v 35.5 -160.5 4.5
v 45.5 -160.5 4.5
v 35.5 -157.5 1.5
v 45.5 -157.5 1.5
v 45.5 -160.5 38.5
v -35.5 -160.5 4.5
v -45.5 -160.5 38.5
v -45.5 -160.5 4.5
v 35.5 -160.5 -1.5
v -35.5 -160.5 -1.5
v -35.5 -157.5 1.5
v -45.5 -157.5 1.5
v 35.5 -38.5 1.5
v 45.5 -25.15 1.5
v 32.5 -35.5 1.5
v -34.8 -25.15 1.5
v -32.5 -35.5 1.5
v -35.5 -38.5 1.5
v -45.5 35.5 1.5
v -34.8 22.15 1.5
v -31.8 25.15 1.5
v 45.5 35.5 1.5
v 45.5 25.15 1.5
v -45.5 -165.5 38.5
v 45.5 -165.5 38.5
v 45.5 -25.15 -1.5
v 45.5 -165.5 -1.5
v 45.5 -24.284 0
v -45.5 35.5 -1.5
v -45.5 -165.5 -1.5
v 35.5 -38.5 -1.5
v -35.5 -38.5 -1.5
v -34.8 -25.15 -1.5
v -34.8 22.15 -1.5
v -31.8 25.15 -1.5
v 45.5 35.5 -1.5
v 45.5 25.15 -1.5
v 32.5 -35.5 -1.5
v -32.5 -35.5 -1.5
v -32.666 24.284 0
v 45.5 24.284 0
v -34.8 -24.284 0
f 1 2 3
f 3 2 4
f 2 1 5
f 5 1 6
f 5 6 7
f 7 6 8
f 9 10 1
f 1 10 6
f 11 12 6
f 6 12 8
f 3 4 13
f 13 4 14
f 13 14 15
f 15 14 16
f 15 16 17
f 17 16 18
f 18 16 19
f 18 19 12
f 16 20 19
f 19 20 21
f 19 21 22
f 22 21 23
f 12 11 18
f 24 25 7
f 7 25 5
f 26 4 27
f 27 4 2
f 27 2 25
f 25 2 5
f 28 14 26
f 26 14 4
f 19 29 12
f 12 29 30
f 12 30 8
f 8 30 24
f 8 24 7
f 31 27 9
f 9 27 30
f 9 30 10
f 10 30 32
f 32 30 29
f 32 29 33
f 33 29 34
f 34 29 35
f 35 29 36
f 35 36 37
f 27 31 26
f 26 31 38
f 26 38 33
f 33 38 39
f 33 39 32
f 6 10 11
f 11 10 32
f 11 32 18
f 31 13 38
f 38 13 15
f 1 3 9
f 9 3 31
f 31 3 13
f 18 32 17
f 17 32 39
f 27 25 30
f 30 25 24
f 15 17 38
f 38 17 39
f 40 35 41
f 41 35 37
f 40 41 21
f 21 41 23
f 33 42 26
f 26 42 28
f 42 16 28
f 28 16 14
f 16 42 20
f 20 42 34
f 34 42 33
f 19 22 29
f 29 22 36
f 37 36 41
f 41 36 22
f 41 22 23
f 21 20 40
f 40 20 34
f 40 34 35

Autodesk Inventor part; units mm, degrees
ref_plane "YZ Plane" through (0, 0, 0) normal (1, 0, 0) x (0, 1, 0)
ref_plane "XZ Plane" through (0, 0, 0) normal (0, 1, 0) x (-1, 0, 0)
ref_plane "XY Plane" through (0, 0, 0) normal (0, 0, 1) x (1, 0, 0)
sketch "Skizze1" plane through (0, 0, 0) normal (0, 0, 1) x (1, 0, 0)
  line L0 (-45.5, 35.5) -> (45.5, 35.5)
  line L1 (45.5, 35.5) -> (45.5, -35.5)
  line L2 (45.5, -35.5) -> (-45.5, -35.5)
  line L3 (-45.5, -35.5) -> (-45.5, 35.5)
  line L4 (-45.5, 35.5) -> (45.5, -35.5) construction
  line L5 (45.5, 35.5) -> (-45.5, -35.5) construction
  line L6 (-34.8, 25.15) -> (45.5, 25.15)
  line L7 (-34.8, -25.15) -> (45.5, -25.15)
  line L8 (0, 0) -> (46.8412, 0)
  line L9 (-34.8, 25.15) -> (-34.8, -25.15)
  line L10 (-31.8, 25.15) -> (-40.5715, 16.3785)
  line L11 (-31.8, 25.15) -> (-19.3953, 25.15) construction
  point P0 (-34.8, 22.15)
  dimension "d0" = 91
  dimension "d1" = 71
  dimension "d4" = 80.3
  dimension "d5" = 50.3
  dimension "d23" = 135
  dimension "d24" = 3
extrude "Extrusion1" add sketch "Skizze1" along normal mid plane 3 contours L0 L1 L6 L9 L7 L2 L3 | L10 L9 L6
sketch "Skizze3" plane through (45.5, 25.15, 1.5) normal (1, 0, 0) x (0, 0, -1)
  line L0 (3, 0) -> (0, 0) projected
  line L1 (0, 0) -> (1.5, -0.866)
  line L2 (0, 0) -> (1.5, 0) construction
  line L3 (3, -50.3) -> (0, -50.3) projected
  line L4 (1.5, 0) -> (1.5, -50.3)
  line L5 (1.5, -0.866) -> (3, 0)
  line L6 (1.5, -25.15) -> (8.6012, -25.15)
  line L7 (0, -50.3) -> (1.5, -49.434)
  line L8 (1.5, -49.434) -> (3, -50.3)
  dimension "d7" = 30
extrude "Extrusion2" add sketch "Skizze3" against normal up to surface (80.3 mm away)
sketch "Skizze4" plane through (-45.5, -35.5, 1.5) normal (0, -1, 0) x (1, 0, 0)
  line L0 (0, 0) -> (91, 0) projected
  line L1 (91, -3) -> (0, -3) projected
  line L2 (0, 0) -> (10, 0)
  line L3 (10, 0) -> (10, -3)
  line L4 (10, -3) -> (0, -3)
  line L5 (0, -3) -> (0, 0)
  line L6 (91, -3) -> (91, 0) projected
  line L7 (91, -3) -> (81, -3)
  line L8 (81, -3) -> (81, 0)
  line L9 (81, 0) -> (91, 0)
  line L10 (91, 0) -> (91, -3)
  point P0 (45.5, -1.5)
  point P1 (81, 0)
  point P2 (81, -3)
  dimension "d10" = 10
  dimension "d11" = 10
extrude "Extrusion3" add sketch "Skizze4" along normal blind 130 contours L0 L3 L1 L5 | L0 L6 L1 L8
chamfer "Fase1" distance 3 angle 45 2 edges at (-35.5, -35.5, 0) (35.5, -35.5, 0)
sketch "Skizze6" plane through (0, 0, -1.5) normal (0, 0, -1) x (-1, 0, 0)
  line L0 (45.5, 35.5) -> (45.5, -165.5) projected
  line L1 (-45.5, -25.15) -> (-45.5, -165.5) projected
  line L2 (45.5, -165.5) -> (-45.5, -165.5)
  line L3 (-45.5, -165.5) -> (-45.5, -160.5)
  line L4 (-45.5, -160.5) -> (45.5, -160.5)
  line L5 (45.5, -160.5) -> (45.5, -165.5)
  point P0 (0, 0)
  dimension "d20" = 5
extrude "Extrusion5" add sketch "Skizze6" against normal blind 40
chamfer "Fase2" distance 3 angle 45 2 edges at (-40.5, -160.5, 1.5) (40.5, -160.5, 1.5)
equation "\"d11\" = d10"
properties part number "PiScanMiniDomeHolder"
